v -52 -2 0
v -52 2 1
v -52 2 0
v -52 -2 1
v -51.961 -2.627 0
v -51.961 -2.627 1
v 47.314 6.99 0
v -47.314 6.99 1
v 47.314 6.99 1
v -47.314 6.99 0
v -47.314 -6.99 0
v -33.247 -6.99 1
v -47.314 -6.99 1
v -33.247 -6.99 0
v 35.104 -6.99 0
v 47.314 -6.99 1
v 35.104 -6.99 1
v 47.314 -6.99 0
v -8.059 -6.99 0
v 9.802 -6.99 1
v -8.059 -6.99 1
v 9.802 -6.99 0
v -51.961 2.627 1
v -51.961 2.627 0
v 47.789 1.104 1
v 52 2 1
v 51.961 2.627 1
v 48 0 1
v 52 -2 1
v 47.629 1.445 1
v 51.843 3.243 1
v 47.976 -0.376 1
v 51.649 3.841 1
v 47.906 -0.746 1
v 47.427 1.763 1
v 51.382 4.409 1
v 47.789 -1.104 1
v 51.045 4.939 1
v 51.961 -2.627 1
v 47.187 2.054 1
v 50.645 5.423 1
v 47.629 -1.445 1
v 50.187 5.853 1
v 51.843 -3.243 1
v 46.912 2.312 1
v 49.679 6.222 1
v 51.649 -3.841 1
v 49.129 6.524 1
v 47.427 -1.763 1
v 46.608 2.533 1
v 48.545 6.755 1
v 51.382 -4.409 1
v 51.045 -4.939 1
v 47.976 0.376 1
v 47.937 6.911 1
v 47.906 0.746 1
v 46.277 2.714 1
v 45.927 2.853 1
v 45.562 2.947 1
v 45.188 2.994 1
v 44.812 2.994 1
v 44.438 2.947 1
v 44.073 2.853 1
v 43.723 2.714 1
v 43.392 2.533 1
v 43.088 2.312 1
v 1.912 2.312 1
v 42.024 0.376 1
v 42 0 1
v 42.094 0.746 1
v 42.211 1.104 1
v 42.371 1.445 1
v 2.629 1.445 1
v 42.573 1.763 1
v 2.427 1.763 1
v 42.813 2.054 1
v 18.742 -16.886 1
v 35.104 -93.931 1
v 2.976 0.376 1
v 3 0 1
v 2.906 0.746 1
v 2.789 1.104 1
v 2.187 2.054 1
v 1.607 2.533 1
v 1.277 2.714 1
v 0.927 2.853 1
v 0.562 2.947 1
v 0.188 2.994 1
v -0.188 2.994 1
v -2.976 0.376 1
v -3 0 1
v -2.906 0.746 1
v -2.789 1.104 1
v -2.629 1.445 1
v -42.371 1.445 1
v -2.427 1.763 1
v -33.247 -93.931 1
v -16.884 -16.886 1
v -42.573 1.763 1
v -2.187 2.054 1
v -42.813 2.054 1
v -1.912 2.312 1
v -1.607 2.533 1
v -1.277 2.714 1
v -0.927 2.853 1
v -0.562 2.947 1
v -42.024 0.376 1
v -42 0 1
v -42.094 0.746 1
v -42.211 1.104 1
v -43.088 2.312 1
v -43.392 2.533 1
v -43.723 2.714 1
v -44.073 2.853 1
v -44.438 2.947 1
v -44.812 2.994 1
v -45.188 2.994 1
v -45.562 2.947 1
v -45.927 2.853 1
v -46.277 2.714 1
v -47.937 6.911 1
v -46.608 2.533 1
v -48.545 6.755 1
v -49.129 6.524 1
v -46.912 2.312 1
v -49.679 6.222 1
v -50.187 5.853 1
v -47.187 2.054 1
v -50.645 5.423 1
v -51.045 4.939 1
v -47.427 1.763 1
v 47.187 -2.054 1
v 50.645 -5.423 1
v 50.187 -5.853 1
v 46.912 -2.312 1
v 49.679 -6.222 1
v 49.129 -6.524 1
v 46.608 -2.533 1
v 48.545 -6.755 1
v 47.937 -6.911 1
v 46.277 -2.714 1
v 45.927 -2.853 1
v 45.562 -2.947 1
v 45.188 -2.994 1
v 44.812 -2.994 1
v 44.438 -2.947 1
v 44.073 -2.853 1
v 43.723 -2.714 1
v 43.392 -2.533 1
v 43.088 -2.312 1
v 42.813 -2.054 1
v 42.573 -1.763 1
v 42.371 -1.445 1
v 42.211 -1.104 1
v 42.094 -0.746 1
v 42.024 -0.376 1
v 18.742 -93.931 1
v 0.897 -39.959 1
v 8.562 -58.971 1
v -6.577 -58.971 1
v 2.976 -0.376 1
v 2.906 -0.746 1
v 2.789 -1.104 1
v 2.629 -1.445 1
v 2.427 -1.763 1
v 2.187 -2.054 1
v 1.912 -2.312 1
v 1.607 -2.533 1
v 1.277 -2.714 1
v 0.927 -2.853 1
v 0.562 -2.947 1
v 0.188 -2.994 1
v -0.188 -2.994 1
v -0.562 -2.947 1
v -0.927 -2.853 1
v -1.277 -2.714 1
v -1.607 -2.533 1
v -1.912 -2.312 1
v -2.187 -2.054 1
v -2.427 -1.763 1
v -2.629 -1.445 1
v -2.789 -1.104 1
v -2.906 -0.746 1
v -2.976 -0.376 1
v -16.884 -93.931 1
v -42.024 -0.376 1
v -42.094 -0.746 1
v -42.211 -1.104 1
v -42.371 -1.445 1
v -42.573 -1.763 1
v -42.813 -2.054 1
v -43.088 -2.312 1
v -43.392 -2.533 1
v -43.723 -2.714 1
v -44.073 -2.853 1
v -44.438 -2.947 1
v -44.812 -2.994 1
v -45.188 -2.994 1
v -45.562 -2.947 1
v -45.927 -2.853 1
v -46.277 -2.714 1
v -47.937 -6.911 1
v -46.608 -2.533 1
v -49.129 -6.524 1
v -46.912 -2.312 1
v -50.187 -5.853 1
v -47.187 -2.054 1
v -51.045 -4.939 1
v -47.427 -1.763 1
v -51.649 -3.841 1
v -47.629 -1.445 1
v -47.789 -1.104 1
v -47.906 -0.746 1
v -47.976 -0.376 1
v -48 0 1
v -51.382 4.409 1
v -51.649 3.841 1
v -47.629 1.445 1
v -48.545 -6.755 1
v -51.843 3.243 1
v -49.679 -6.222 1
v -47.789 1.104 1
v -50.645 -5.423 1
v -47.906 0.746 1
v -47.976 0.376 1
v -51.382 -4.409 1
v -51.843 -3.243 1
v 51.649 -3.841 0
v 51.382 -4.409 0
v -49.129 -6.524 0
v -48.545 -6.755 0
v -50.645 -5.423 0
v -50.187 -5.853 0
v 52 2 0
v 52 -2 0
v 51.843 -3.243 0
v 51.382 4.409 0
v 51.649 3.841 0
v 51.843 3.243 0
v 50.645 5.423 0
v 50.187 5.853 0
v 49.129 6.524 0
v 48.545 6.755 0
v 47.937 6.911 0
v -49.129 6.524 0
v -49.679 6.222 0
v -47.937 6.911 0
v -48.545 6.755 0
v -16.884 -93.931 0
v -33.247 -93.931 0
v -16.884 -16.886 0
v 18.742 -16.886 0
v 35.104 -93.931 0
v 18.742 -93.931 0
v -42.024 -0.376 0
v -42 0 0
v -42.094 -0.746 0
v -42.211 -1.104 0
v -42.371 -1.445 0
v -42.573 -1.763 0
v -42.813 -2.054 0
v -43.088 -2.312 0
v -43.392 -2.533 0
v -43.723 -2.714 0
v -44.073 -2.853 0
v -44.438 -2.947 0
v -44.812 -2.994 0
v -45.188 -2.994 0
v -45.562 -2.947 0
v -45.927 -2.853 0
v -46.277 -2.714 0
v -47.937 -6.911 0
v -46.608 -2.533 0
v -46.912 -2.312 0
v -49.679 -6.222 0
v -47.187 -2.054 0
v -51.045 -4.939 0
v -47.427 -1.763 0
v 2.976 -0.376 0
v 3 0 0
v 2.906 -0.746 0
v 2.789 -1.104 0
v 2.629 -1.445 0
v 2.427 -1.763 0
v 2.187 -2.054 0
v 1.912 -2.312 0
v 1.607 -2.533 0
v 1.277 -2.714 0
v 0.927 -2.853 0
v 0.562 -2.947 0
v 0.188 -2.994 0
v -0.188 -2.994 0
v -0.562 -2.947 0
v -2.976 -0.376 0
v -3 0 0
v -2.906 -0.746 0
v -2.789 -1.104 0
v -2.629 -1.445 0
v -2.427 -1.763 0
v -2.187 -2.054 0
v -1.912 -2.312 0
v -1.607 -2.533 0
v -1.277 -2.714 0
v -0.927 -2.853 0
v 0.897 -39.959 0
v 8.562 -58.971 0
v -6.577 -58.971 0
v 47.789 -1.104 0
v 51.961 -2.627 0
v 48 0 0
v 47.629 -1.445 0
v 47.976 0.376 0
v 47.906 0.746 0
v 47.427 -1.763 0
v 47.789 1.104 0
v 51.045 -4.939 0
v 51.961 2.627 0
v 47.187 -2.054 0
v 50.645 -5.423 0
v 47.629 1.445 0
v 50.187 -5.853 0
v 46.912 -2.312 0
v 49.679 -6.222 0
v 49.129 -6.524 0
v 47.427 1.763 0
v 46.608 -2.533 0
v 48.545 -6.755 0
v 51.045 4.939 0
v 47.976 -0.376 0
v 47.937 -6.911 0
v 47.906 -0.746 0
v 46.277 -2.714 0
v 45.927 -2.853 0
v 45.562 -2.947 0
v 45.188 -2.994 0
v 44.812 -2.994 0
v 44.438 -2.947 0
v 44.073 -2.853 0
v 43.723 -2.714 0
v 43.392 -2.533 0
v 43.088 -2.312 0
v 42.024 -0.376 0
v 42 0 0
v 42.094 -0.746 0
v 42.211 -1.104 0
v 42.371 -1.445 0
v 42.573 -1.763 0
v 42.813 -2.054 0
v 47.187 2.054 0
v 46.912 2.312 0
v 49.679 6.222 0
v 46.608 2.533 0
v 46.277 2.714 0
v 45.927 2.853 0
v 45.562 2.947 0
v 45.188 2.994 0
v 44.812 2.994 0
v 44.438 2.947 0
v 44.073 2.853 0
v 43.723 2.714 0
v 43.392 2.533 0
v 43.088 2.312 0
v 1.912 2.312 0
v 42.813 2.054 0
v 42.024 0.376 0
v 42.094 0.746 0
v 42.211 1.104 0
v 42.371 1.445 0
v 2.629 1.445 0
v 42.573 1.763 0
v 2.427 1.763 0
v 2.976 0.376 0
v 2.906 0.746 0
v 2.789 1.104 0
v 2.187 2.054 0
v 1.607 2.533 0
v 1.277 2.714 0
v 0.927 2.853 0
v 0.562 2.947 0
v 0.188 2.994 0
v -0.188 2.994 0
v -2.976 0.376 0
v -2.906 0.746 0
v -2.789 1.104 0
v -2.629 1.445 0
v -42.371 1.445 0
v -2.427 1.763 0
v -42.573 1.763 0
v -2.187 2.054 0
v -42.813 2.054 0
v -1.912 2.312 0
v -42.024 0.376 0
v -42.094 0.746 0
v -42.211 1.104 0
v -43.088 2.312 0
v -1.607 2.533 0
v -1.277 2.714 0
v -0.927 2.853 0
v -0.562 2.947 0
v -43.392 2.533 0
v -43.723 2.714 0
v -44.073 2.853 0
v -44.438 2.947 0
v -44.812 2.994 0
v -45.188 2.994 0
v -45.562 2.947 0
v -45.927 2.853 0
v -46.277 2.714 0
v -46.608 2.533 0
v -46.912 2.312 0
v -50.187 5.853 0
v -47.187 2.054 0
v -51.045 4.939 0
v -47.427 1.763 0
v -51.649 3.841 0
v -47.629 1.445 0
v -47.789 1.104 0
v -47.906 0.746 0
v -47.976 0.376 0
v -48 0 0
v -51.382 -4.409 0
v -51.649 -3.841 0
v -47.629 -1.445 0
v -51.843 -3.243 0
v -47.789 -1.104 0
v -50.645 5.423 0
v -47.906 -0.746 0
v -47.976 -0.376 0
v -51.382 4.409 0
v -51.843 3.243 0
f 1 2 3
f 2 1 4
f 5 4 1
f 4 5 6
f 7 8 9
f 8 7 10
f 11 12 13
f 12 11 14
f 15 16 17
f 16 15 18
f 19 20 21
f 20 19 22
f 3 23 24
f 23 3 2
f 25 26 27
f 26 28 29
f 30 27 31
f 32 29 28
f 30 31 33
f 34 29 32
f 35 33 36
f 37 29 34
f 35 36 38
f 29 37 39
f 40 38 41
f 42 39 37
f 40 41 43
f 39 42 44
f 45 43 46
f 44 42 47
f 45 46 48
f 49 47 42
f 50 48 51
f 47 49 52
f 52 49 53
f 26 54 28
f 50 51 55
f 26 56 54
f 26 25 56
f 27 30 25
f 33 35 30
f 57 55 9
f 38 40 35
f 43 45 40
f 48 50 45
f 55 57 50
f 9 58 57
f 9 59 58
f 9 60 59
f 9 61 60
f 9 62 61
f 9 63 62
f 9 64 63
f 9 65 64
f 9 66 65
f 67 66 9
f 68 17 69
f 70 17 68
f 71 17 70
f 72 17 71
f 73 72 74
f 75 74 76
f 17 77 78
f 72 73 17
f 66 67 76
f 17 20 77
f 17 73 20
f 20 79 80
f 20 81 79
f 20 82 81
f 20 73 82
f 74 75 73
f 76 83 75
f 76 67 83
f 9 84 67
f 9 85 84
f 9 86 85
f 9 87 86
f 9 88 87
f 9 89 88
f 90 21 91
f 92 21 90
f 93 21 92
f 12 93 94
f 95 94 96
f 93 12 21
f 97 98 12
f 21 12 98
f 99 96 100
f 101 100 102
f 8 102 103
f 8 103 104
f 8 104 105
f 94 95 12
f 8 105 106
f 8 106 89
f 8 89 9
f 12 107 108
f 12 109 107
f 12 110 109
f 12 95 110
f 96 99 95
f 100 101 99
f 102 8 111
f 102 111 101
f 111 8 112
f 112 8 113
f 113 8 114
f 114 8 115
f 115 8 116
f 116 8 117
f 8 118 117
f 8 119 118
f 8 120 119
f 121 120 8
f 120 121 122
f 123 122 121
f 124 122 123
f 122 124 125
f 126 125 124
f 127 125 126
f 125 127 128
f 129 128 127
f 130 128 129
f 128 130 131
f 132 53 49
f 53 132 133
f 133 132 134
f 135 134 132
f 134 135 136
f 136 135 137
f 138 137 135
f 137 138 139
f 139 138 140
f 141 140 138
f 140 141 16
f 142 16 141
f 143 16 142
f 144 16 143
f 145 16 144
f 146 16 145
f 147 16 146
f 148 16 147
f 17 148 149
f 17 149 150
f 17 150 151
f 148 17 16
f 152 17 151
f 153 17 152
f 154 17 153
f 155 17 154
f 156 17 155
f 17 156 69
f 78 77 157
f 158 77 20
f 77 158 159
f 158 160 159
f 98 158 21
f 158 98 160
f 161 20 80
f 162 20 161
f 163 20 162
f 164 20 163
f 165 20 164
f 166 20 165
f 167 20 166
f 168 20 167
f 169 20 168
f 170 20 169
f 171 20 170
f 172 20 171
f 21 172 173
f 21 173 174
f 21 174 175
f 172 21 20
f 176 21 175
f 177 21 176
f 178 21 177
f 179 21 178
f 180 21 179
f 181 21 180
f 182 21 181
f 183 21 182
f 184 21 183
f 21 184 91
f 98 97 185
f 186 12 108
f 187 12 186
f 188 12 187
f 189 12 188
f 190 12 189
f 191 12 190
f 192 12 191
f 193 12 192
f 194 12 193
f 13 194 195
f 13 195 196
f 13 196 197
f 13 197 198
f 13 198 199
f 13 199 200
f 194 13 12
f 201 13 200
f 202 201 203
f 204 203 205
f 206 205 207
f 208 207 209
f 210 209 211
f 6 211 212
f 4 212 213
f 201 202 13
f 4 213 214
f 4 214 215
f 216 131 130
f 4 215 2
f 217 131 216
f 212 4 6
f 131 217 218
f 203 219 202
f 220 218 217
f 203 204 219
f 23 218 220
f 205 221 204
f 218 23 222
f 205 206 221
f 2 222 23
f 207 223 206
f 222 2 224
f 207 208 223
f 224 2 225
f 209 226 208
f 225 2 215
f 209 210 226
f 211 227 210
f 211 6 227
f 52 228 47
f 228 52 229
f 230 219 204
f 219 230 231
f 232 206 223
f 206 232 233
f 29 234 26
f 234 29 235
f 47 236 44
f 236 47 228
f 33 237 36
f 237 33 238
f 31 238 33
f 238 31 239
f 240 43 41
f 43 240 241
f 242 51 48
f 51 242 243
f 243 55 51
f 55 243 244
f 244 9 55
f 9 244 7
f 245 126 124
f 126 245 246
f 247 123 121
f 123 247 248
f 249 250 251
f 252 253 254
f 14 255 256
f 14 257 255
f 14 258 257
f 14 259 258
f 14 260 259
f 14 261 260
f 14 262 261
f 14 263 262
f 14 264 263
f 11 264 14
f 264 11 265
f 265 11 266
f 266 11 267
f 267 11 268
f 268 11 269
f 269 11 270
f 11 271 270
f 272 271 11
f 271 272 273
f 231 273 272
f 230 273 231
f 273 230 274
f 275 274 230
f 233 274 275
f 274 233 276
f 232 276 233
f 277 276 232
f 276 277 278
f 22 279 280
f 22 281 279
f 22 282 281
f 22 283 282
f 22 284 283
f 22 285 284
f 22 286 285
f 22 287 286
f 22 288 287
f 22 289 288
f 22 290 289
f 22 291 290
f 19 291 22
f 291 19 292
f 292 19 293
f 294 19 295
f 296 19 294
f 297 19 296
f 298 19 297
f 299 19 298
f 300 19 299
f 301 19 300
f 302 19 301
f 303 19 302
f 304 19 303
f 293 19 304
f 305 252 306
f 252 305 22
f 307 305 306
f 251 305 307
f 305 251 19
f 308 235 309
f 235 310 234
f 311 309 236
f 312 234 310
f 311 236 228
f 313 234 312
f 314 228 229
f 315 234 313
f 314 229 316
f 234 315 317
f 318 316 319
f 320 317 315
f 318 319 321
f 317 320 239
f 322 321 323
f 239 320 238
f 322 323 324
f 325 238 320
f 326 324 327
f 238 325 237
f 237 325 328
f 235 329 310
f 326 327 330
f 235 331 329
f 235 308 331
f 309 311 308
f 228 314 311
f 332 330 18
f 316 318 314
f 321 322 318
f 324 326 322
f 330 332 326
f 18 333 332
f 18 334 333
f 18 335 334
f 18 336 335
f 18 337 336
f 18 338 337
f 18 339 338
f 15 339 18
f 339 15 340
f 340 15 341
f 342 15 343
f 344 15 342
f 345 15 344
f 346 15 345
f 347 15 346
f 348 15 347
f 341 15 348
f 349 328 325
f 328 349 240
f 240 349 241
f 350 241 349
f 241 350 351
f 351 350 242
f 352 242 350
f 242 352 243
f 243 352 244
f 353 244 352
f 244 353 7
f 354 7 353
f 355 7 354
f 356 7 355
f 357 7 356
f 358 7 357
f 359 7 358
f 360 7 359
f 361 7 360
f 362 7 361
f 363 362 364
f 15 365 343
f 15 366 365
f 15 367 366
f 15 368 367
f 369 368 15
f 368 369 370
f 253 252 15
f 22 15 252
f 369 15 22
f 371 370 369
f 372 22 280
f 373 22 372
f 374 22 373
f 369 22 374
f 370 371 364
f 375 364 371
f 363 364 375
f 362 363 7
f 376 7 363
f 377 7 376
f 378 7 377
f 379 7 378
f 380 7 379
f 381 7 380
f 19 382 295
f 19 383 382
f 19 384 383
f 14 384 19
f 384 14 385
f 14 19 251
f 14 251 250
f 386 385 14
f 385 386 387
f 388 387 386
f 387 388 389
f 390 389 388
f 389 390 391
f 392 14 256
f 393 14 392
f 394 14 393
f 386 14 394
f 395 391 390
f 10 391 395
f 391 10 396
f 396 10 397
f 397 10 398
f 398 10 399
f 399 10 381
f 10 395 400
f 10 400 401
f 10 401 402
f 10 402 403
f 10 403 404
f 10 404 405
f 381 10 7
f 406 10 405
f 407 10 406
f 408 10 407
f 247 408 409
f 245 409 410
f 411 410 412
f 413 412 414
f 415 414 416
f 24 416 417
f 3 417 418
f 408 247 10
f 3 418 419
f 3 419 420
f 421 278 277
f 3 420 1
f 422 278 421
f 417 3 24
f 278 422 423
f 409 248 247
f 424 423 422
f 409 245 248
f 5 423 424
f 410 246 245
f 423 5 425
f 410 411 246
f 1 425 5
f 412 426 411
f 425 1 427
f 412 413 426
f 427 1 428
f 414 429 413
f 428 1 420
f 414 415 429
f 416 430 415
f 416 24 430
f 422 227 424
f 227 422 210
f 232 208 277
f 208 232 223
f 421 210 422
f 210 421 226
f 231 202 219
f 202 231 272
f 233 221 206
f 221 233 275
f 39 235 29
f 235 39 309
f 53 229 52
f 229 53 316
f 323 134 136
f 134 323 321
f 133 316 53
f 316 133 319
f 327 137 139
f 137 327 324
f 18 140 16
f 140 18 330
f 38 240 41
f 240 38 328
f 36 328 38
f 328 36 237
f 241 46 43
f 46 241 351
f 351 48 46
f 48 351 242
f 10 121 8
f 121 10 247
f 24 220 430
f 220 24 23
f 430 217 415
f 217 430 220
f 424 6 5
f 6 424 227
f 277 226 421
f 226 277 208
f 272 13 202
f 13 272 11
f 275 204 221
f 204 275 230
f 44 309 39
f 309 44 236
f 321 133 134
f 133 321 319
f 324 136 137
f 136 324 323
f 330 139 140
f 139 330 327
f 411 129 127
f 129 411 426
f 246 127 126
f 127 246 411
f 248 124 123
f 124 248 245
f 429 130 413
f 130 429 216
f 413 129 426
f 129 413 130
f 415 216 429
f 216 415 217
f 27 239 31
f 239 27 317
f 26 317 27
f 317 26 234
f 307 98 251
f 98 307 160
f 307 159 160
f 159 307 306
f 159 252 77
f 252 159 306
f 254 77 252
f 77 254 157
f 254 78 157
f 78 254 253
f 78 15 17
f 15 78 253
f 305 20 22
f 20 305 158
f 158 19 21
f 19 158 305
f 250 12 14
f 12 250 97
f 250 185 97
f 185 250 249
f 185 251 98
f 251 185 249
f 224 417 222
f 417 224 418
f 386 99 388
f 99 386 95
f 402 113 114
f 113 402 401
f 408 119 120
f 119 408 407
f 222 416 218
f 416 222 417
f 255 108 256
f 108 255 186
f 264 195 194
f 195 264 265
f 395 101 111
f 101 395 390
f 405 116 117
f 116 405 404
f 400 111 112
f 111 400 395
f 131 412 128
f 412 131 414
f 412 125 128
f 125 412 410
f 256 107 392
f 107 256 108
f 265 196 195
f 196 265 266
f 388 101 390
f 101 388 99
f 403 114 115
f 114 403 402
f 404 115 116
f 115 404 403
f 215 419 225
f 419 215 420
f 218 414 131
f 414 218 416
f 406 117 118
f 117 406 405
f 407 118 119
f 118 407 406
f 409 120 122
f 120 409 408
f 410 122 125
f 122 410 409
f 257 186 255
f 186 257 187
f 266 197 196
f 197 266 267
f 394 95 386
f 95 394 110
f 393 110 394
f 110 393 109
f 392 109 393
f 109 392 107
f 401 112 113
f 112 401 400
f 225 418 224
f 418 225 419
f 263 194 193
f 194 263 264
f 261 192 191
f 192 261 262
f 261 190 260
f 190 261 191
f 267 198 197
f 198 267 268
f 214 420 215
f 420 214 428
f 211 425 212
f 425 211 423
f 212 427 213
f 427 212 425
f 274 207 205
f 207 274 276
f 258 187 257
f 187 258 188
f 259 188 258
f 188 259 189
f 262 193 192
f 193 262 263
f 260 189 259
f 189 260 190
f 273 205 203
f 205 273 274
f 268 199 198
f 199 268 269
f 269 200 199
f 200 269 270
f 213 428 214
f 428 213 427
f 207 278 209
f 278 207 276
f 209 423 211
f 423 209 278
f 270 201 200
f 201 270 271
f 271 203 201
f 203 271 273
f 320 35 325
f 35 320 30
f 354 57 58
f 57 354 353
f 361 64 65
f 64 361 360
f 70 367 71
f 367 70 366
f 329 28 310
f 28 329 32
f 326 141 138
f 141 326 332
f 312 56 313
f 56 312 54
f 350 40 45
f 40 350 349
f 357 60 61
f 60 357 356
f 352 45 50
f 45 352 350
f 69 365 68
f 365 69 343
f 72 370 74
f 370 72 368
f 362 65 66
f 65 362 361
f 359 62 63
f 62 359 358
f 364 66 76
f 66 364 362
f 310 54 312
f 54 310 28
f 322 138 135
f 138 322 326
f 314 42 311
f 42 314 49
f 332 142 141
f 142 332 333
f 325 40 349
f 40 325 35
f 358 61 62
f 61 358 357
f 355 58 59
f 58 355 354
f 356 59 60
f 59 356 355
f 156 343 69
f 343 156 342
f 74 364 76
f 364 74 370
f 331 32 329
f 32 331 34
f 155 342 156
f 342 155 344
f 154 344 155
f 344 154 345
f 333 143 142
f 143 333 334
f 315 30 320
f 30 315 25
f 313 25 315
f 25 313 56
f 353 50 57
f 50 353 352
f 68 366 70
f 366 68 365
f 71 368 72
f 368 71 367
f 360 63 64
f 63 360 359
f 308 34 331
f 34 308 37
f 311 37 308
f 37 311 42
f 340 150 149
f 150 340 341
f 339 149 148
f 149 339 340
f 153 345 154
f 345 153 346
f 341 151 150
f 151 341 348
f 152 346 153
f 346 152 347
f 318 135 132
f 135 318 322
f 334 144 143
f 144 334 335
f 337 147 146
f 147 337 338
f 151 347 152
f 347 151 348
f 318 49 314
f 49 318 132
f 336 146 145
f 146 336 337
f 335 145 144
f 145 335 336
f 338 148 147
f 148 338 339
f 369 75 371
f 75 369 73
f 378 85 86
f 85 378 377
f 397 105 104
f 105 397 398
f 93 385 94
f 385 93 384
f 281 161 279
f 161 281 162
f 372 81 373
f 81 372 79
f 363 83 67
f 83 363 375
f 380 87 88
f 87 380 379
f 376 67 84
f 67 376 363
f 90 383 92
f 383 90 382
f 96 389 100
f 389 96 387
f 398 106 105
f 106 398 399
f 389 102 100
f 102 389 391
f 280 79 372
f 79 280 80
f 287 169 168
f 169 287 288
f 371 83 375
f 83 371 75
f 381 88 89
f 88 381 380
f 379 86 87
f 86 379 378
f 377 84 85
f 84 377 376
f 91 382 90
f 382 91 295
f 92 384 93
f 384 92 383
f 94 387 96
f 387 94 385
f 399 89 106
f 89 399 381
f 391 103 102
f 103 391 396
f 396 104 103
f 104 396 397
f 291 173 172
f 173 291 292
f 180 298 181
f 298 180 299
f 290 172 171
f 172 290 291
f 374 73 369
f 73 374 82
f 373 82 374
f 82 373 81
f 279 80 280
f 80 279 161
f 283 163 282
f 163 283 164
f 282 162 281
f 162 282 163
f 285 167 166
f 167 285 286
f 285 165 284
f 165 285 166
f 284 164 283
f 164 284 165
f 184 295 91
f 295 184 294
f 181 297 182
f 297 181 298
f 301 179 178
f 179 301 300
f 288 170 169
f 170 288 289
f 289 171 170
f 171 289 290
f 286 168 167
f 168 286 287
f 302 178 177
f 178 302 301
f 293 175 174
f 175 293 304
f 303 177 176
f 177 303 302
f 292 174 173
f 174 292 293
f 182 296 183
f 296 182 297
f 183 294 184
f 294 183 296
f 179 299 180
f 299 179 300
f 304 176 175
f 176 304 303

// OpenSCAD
$fn = 50;


difference() {
	union() {
		translate(v = [0, 0, 0]) {
			rotate(a = [0, 0, 0]) {
				hull() {
					translate(v = [-47.0000000000, 2.0000000000, 0]) {
						rotate(a = [0, 0, 0]) {
							translate(v = [0, 0, 0]) {
								rotate(a = [0, 0, 0]) {
									cylinder(h = 1, r = 5);
								}
							}
						}
					}
					translate(v = [47.0000000000, 2.0000000000, 0]) {
						rotate(a = [0, 0, 0]) {
							translate(v = [0, 0, 0]) {
								rotate(a = [0, 0, 0]) {
									cylinder(h = 1, r = 5);
								}
							}
						}
					}
					translate(v = [-47.0000000000, -2.0000000000, 0]) {
						rotate(a = [0, 0, 0]) {
							translate(v = [0, 0, 0]) {
								rotate(a = [0, 0, 0]) {
									cylinder(h = 1, r = 5);
								}
							}
						}
					}
					translate(v = [47.0000000000, -2.0000000000, 0]) {
						rotate(a = [0, 0, 0]) {
							translate(v = [0, 0, 0]) {
								rotate(a = [0, 0, 0]) {
									cylinder(h = 1, r = 5);
								}
							}
						}
					}
				}
			}
		}
		translate(v = [0, 0, 0]) {
			rotate(a = [0, 0, 0]) {
				linear_extrude(height = 1) {
					text(font = "DejaVu Sans Mono:style=Bold", halign = "center", size = 95.0000000000, text = "M", valign = "top");
				}
			}
		}
	}
	union() {
		translate(v = [-45.0000000000, 0.0000000000, -125.0000000000]) {
			rotate(a = [0, 0, 0]) {
				cylinder(h = 250, r = 3.0000000000);
			}
		}
		translate(v = [45.0000000000, 0.0000000000, -125.0000000000]) {
			rotate(a = [0, 0, 0]) {
				cylinder(h = 250, r = 3.0000000000);
			}
		}
		translate(v = [45.0000000000, 0.0000000000, -125.0000000000]) {
			rotate(a = [0, 0, 0]) {
				cylinder(h = 250, r = 3.0000000000);
			}
		}
		translate(v = [0, 0, -125.0000000000]) {
			rotate(a = [0, 0, 0]) {
				cylinder(h = 250, r = 3.0000000000);
			}
		}
	}
}
